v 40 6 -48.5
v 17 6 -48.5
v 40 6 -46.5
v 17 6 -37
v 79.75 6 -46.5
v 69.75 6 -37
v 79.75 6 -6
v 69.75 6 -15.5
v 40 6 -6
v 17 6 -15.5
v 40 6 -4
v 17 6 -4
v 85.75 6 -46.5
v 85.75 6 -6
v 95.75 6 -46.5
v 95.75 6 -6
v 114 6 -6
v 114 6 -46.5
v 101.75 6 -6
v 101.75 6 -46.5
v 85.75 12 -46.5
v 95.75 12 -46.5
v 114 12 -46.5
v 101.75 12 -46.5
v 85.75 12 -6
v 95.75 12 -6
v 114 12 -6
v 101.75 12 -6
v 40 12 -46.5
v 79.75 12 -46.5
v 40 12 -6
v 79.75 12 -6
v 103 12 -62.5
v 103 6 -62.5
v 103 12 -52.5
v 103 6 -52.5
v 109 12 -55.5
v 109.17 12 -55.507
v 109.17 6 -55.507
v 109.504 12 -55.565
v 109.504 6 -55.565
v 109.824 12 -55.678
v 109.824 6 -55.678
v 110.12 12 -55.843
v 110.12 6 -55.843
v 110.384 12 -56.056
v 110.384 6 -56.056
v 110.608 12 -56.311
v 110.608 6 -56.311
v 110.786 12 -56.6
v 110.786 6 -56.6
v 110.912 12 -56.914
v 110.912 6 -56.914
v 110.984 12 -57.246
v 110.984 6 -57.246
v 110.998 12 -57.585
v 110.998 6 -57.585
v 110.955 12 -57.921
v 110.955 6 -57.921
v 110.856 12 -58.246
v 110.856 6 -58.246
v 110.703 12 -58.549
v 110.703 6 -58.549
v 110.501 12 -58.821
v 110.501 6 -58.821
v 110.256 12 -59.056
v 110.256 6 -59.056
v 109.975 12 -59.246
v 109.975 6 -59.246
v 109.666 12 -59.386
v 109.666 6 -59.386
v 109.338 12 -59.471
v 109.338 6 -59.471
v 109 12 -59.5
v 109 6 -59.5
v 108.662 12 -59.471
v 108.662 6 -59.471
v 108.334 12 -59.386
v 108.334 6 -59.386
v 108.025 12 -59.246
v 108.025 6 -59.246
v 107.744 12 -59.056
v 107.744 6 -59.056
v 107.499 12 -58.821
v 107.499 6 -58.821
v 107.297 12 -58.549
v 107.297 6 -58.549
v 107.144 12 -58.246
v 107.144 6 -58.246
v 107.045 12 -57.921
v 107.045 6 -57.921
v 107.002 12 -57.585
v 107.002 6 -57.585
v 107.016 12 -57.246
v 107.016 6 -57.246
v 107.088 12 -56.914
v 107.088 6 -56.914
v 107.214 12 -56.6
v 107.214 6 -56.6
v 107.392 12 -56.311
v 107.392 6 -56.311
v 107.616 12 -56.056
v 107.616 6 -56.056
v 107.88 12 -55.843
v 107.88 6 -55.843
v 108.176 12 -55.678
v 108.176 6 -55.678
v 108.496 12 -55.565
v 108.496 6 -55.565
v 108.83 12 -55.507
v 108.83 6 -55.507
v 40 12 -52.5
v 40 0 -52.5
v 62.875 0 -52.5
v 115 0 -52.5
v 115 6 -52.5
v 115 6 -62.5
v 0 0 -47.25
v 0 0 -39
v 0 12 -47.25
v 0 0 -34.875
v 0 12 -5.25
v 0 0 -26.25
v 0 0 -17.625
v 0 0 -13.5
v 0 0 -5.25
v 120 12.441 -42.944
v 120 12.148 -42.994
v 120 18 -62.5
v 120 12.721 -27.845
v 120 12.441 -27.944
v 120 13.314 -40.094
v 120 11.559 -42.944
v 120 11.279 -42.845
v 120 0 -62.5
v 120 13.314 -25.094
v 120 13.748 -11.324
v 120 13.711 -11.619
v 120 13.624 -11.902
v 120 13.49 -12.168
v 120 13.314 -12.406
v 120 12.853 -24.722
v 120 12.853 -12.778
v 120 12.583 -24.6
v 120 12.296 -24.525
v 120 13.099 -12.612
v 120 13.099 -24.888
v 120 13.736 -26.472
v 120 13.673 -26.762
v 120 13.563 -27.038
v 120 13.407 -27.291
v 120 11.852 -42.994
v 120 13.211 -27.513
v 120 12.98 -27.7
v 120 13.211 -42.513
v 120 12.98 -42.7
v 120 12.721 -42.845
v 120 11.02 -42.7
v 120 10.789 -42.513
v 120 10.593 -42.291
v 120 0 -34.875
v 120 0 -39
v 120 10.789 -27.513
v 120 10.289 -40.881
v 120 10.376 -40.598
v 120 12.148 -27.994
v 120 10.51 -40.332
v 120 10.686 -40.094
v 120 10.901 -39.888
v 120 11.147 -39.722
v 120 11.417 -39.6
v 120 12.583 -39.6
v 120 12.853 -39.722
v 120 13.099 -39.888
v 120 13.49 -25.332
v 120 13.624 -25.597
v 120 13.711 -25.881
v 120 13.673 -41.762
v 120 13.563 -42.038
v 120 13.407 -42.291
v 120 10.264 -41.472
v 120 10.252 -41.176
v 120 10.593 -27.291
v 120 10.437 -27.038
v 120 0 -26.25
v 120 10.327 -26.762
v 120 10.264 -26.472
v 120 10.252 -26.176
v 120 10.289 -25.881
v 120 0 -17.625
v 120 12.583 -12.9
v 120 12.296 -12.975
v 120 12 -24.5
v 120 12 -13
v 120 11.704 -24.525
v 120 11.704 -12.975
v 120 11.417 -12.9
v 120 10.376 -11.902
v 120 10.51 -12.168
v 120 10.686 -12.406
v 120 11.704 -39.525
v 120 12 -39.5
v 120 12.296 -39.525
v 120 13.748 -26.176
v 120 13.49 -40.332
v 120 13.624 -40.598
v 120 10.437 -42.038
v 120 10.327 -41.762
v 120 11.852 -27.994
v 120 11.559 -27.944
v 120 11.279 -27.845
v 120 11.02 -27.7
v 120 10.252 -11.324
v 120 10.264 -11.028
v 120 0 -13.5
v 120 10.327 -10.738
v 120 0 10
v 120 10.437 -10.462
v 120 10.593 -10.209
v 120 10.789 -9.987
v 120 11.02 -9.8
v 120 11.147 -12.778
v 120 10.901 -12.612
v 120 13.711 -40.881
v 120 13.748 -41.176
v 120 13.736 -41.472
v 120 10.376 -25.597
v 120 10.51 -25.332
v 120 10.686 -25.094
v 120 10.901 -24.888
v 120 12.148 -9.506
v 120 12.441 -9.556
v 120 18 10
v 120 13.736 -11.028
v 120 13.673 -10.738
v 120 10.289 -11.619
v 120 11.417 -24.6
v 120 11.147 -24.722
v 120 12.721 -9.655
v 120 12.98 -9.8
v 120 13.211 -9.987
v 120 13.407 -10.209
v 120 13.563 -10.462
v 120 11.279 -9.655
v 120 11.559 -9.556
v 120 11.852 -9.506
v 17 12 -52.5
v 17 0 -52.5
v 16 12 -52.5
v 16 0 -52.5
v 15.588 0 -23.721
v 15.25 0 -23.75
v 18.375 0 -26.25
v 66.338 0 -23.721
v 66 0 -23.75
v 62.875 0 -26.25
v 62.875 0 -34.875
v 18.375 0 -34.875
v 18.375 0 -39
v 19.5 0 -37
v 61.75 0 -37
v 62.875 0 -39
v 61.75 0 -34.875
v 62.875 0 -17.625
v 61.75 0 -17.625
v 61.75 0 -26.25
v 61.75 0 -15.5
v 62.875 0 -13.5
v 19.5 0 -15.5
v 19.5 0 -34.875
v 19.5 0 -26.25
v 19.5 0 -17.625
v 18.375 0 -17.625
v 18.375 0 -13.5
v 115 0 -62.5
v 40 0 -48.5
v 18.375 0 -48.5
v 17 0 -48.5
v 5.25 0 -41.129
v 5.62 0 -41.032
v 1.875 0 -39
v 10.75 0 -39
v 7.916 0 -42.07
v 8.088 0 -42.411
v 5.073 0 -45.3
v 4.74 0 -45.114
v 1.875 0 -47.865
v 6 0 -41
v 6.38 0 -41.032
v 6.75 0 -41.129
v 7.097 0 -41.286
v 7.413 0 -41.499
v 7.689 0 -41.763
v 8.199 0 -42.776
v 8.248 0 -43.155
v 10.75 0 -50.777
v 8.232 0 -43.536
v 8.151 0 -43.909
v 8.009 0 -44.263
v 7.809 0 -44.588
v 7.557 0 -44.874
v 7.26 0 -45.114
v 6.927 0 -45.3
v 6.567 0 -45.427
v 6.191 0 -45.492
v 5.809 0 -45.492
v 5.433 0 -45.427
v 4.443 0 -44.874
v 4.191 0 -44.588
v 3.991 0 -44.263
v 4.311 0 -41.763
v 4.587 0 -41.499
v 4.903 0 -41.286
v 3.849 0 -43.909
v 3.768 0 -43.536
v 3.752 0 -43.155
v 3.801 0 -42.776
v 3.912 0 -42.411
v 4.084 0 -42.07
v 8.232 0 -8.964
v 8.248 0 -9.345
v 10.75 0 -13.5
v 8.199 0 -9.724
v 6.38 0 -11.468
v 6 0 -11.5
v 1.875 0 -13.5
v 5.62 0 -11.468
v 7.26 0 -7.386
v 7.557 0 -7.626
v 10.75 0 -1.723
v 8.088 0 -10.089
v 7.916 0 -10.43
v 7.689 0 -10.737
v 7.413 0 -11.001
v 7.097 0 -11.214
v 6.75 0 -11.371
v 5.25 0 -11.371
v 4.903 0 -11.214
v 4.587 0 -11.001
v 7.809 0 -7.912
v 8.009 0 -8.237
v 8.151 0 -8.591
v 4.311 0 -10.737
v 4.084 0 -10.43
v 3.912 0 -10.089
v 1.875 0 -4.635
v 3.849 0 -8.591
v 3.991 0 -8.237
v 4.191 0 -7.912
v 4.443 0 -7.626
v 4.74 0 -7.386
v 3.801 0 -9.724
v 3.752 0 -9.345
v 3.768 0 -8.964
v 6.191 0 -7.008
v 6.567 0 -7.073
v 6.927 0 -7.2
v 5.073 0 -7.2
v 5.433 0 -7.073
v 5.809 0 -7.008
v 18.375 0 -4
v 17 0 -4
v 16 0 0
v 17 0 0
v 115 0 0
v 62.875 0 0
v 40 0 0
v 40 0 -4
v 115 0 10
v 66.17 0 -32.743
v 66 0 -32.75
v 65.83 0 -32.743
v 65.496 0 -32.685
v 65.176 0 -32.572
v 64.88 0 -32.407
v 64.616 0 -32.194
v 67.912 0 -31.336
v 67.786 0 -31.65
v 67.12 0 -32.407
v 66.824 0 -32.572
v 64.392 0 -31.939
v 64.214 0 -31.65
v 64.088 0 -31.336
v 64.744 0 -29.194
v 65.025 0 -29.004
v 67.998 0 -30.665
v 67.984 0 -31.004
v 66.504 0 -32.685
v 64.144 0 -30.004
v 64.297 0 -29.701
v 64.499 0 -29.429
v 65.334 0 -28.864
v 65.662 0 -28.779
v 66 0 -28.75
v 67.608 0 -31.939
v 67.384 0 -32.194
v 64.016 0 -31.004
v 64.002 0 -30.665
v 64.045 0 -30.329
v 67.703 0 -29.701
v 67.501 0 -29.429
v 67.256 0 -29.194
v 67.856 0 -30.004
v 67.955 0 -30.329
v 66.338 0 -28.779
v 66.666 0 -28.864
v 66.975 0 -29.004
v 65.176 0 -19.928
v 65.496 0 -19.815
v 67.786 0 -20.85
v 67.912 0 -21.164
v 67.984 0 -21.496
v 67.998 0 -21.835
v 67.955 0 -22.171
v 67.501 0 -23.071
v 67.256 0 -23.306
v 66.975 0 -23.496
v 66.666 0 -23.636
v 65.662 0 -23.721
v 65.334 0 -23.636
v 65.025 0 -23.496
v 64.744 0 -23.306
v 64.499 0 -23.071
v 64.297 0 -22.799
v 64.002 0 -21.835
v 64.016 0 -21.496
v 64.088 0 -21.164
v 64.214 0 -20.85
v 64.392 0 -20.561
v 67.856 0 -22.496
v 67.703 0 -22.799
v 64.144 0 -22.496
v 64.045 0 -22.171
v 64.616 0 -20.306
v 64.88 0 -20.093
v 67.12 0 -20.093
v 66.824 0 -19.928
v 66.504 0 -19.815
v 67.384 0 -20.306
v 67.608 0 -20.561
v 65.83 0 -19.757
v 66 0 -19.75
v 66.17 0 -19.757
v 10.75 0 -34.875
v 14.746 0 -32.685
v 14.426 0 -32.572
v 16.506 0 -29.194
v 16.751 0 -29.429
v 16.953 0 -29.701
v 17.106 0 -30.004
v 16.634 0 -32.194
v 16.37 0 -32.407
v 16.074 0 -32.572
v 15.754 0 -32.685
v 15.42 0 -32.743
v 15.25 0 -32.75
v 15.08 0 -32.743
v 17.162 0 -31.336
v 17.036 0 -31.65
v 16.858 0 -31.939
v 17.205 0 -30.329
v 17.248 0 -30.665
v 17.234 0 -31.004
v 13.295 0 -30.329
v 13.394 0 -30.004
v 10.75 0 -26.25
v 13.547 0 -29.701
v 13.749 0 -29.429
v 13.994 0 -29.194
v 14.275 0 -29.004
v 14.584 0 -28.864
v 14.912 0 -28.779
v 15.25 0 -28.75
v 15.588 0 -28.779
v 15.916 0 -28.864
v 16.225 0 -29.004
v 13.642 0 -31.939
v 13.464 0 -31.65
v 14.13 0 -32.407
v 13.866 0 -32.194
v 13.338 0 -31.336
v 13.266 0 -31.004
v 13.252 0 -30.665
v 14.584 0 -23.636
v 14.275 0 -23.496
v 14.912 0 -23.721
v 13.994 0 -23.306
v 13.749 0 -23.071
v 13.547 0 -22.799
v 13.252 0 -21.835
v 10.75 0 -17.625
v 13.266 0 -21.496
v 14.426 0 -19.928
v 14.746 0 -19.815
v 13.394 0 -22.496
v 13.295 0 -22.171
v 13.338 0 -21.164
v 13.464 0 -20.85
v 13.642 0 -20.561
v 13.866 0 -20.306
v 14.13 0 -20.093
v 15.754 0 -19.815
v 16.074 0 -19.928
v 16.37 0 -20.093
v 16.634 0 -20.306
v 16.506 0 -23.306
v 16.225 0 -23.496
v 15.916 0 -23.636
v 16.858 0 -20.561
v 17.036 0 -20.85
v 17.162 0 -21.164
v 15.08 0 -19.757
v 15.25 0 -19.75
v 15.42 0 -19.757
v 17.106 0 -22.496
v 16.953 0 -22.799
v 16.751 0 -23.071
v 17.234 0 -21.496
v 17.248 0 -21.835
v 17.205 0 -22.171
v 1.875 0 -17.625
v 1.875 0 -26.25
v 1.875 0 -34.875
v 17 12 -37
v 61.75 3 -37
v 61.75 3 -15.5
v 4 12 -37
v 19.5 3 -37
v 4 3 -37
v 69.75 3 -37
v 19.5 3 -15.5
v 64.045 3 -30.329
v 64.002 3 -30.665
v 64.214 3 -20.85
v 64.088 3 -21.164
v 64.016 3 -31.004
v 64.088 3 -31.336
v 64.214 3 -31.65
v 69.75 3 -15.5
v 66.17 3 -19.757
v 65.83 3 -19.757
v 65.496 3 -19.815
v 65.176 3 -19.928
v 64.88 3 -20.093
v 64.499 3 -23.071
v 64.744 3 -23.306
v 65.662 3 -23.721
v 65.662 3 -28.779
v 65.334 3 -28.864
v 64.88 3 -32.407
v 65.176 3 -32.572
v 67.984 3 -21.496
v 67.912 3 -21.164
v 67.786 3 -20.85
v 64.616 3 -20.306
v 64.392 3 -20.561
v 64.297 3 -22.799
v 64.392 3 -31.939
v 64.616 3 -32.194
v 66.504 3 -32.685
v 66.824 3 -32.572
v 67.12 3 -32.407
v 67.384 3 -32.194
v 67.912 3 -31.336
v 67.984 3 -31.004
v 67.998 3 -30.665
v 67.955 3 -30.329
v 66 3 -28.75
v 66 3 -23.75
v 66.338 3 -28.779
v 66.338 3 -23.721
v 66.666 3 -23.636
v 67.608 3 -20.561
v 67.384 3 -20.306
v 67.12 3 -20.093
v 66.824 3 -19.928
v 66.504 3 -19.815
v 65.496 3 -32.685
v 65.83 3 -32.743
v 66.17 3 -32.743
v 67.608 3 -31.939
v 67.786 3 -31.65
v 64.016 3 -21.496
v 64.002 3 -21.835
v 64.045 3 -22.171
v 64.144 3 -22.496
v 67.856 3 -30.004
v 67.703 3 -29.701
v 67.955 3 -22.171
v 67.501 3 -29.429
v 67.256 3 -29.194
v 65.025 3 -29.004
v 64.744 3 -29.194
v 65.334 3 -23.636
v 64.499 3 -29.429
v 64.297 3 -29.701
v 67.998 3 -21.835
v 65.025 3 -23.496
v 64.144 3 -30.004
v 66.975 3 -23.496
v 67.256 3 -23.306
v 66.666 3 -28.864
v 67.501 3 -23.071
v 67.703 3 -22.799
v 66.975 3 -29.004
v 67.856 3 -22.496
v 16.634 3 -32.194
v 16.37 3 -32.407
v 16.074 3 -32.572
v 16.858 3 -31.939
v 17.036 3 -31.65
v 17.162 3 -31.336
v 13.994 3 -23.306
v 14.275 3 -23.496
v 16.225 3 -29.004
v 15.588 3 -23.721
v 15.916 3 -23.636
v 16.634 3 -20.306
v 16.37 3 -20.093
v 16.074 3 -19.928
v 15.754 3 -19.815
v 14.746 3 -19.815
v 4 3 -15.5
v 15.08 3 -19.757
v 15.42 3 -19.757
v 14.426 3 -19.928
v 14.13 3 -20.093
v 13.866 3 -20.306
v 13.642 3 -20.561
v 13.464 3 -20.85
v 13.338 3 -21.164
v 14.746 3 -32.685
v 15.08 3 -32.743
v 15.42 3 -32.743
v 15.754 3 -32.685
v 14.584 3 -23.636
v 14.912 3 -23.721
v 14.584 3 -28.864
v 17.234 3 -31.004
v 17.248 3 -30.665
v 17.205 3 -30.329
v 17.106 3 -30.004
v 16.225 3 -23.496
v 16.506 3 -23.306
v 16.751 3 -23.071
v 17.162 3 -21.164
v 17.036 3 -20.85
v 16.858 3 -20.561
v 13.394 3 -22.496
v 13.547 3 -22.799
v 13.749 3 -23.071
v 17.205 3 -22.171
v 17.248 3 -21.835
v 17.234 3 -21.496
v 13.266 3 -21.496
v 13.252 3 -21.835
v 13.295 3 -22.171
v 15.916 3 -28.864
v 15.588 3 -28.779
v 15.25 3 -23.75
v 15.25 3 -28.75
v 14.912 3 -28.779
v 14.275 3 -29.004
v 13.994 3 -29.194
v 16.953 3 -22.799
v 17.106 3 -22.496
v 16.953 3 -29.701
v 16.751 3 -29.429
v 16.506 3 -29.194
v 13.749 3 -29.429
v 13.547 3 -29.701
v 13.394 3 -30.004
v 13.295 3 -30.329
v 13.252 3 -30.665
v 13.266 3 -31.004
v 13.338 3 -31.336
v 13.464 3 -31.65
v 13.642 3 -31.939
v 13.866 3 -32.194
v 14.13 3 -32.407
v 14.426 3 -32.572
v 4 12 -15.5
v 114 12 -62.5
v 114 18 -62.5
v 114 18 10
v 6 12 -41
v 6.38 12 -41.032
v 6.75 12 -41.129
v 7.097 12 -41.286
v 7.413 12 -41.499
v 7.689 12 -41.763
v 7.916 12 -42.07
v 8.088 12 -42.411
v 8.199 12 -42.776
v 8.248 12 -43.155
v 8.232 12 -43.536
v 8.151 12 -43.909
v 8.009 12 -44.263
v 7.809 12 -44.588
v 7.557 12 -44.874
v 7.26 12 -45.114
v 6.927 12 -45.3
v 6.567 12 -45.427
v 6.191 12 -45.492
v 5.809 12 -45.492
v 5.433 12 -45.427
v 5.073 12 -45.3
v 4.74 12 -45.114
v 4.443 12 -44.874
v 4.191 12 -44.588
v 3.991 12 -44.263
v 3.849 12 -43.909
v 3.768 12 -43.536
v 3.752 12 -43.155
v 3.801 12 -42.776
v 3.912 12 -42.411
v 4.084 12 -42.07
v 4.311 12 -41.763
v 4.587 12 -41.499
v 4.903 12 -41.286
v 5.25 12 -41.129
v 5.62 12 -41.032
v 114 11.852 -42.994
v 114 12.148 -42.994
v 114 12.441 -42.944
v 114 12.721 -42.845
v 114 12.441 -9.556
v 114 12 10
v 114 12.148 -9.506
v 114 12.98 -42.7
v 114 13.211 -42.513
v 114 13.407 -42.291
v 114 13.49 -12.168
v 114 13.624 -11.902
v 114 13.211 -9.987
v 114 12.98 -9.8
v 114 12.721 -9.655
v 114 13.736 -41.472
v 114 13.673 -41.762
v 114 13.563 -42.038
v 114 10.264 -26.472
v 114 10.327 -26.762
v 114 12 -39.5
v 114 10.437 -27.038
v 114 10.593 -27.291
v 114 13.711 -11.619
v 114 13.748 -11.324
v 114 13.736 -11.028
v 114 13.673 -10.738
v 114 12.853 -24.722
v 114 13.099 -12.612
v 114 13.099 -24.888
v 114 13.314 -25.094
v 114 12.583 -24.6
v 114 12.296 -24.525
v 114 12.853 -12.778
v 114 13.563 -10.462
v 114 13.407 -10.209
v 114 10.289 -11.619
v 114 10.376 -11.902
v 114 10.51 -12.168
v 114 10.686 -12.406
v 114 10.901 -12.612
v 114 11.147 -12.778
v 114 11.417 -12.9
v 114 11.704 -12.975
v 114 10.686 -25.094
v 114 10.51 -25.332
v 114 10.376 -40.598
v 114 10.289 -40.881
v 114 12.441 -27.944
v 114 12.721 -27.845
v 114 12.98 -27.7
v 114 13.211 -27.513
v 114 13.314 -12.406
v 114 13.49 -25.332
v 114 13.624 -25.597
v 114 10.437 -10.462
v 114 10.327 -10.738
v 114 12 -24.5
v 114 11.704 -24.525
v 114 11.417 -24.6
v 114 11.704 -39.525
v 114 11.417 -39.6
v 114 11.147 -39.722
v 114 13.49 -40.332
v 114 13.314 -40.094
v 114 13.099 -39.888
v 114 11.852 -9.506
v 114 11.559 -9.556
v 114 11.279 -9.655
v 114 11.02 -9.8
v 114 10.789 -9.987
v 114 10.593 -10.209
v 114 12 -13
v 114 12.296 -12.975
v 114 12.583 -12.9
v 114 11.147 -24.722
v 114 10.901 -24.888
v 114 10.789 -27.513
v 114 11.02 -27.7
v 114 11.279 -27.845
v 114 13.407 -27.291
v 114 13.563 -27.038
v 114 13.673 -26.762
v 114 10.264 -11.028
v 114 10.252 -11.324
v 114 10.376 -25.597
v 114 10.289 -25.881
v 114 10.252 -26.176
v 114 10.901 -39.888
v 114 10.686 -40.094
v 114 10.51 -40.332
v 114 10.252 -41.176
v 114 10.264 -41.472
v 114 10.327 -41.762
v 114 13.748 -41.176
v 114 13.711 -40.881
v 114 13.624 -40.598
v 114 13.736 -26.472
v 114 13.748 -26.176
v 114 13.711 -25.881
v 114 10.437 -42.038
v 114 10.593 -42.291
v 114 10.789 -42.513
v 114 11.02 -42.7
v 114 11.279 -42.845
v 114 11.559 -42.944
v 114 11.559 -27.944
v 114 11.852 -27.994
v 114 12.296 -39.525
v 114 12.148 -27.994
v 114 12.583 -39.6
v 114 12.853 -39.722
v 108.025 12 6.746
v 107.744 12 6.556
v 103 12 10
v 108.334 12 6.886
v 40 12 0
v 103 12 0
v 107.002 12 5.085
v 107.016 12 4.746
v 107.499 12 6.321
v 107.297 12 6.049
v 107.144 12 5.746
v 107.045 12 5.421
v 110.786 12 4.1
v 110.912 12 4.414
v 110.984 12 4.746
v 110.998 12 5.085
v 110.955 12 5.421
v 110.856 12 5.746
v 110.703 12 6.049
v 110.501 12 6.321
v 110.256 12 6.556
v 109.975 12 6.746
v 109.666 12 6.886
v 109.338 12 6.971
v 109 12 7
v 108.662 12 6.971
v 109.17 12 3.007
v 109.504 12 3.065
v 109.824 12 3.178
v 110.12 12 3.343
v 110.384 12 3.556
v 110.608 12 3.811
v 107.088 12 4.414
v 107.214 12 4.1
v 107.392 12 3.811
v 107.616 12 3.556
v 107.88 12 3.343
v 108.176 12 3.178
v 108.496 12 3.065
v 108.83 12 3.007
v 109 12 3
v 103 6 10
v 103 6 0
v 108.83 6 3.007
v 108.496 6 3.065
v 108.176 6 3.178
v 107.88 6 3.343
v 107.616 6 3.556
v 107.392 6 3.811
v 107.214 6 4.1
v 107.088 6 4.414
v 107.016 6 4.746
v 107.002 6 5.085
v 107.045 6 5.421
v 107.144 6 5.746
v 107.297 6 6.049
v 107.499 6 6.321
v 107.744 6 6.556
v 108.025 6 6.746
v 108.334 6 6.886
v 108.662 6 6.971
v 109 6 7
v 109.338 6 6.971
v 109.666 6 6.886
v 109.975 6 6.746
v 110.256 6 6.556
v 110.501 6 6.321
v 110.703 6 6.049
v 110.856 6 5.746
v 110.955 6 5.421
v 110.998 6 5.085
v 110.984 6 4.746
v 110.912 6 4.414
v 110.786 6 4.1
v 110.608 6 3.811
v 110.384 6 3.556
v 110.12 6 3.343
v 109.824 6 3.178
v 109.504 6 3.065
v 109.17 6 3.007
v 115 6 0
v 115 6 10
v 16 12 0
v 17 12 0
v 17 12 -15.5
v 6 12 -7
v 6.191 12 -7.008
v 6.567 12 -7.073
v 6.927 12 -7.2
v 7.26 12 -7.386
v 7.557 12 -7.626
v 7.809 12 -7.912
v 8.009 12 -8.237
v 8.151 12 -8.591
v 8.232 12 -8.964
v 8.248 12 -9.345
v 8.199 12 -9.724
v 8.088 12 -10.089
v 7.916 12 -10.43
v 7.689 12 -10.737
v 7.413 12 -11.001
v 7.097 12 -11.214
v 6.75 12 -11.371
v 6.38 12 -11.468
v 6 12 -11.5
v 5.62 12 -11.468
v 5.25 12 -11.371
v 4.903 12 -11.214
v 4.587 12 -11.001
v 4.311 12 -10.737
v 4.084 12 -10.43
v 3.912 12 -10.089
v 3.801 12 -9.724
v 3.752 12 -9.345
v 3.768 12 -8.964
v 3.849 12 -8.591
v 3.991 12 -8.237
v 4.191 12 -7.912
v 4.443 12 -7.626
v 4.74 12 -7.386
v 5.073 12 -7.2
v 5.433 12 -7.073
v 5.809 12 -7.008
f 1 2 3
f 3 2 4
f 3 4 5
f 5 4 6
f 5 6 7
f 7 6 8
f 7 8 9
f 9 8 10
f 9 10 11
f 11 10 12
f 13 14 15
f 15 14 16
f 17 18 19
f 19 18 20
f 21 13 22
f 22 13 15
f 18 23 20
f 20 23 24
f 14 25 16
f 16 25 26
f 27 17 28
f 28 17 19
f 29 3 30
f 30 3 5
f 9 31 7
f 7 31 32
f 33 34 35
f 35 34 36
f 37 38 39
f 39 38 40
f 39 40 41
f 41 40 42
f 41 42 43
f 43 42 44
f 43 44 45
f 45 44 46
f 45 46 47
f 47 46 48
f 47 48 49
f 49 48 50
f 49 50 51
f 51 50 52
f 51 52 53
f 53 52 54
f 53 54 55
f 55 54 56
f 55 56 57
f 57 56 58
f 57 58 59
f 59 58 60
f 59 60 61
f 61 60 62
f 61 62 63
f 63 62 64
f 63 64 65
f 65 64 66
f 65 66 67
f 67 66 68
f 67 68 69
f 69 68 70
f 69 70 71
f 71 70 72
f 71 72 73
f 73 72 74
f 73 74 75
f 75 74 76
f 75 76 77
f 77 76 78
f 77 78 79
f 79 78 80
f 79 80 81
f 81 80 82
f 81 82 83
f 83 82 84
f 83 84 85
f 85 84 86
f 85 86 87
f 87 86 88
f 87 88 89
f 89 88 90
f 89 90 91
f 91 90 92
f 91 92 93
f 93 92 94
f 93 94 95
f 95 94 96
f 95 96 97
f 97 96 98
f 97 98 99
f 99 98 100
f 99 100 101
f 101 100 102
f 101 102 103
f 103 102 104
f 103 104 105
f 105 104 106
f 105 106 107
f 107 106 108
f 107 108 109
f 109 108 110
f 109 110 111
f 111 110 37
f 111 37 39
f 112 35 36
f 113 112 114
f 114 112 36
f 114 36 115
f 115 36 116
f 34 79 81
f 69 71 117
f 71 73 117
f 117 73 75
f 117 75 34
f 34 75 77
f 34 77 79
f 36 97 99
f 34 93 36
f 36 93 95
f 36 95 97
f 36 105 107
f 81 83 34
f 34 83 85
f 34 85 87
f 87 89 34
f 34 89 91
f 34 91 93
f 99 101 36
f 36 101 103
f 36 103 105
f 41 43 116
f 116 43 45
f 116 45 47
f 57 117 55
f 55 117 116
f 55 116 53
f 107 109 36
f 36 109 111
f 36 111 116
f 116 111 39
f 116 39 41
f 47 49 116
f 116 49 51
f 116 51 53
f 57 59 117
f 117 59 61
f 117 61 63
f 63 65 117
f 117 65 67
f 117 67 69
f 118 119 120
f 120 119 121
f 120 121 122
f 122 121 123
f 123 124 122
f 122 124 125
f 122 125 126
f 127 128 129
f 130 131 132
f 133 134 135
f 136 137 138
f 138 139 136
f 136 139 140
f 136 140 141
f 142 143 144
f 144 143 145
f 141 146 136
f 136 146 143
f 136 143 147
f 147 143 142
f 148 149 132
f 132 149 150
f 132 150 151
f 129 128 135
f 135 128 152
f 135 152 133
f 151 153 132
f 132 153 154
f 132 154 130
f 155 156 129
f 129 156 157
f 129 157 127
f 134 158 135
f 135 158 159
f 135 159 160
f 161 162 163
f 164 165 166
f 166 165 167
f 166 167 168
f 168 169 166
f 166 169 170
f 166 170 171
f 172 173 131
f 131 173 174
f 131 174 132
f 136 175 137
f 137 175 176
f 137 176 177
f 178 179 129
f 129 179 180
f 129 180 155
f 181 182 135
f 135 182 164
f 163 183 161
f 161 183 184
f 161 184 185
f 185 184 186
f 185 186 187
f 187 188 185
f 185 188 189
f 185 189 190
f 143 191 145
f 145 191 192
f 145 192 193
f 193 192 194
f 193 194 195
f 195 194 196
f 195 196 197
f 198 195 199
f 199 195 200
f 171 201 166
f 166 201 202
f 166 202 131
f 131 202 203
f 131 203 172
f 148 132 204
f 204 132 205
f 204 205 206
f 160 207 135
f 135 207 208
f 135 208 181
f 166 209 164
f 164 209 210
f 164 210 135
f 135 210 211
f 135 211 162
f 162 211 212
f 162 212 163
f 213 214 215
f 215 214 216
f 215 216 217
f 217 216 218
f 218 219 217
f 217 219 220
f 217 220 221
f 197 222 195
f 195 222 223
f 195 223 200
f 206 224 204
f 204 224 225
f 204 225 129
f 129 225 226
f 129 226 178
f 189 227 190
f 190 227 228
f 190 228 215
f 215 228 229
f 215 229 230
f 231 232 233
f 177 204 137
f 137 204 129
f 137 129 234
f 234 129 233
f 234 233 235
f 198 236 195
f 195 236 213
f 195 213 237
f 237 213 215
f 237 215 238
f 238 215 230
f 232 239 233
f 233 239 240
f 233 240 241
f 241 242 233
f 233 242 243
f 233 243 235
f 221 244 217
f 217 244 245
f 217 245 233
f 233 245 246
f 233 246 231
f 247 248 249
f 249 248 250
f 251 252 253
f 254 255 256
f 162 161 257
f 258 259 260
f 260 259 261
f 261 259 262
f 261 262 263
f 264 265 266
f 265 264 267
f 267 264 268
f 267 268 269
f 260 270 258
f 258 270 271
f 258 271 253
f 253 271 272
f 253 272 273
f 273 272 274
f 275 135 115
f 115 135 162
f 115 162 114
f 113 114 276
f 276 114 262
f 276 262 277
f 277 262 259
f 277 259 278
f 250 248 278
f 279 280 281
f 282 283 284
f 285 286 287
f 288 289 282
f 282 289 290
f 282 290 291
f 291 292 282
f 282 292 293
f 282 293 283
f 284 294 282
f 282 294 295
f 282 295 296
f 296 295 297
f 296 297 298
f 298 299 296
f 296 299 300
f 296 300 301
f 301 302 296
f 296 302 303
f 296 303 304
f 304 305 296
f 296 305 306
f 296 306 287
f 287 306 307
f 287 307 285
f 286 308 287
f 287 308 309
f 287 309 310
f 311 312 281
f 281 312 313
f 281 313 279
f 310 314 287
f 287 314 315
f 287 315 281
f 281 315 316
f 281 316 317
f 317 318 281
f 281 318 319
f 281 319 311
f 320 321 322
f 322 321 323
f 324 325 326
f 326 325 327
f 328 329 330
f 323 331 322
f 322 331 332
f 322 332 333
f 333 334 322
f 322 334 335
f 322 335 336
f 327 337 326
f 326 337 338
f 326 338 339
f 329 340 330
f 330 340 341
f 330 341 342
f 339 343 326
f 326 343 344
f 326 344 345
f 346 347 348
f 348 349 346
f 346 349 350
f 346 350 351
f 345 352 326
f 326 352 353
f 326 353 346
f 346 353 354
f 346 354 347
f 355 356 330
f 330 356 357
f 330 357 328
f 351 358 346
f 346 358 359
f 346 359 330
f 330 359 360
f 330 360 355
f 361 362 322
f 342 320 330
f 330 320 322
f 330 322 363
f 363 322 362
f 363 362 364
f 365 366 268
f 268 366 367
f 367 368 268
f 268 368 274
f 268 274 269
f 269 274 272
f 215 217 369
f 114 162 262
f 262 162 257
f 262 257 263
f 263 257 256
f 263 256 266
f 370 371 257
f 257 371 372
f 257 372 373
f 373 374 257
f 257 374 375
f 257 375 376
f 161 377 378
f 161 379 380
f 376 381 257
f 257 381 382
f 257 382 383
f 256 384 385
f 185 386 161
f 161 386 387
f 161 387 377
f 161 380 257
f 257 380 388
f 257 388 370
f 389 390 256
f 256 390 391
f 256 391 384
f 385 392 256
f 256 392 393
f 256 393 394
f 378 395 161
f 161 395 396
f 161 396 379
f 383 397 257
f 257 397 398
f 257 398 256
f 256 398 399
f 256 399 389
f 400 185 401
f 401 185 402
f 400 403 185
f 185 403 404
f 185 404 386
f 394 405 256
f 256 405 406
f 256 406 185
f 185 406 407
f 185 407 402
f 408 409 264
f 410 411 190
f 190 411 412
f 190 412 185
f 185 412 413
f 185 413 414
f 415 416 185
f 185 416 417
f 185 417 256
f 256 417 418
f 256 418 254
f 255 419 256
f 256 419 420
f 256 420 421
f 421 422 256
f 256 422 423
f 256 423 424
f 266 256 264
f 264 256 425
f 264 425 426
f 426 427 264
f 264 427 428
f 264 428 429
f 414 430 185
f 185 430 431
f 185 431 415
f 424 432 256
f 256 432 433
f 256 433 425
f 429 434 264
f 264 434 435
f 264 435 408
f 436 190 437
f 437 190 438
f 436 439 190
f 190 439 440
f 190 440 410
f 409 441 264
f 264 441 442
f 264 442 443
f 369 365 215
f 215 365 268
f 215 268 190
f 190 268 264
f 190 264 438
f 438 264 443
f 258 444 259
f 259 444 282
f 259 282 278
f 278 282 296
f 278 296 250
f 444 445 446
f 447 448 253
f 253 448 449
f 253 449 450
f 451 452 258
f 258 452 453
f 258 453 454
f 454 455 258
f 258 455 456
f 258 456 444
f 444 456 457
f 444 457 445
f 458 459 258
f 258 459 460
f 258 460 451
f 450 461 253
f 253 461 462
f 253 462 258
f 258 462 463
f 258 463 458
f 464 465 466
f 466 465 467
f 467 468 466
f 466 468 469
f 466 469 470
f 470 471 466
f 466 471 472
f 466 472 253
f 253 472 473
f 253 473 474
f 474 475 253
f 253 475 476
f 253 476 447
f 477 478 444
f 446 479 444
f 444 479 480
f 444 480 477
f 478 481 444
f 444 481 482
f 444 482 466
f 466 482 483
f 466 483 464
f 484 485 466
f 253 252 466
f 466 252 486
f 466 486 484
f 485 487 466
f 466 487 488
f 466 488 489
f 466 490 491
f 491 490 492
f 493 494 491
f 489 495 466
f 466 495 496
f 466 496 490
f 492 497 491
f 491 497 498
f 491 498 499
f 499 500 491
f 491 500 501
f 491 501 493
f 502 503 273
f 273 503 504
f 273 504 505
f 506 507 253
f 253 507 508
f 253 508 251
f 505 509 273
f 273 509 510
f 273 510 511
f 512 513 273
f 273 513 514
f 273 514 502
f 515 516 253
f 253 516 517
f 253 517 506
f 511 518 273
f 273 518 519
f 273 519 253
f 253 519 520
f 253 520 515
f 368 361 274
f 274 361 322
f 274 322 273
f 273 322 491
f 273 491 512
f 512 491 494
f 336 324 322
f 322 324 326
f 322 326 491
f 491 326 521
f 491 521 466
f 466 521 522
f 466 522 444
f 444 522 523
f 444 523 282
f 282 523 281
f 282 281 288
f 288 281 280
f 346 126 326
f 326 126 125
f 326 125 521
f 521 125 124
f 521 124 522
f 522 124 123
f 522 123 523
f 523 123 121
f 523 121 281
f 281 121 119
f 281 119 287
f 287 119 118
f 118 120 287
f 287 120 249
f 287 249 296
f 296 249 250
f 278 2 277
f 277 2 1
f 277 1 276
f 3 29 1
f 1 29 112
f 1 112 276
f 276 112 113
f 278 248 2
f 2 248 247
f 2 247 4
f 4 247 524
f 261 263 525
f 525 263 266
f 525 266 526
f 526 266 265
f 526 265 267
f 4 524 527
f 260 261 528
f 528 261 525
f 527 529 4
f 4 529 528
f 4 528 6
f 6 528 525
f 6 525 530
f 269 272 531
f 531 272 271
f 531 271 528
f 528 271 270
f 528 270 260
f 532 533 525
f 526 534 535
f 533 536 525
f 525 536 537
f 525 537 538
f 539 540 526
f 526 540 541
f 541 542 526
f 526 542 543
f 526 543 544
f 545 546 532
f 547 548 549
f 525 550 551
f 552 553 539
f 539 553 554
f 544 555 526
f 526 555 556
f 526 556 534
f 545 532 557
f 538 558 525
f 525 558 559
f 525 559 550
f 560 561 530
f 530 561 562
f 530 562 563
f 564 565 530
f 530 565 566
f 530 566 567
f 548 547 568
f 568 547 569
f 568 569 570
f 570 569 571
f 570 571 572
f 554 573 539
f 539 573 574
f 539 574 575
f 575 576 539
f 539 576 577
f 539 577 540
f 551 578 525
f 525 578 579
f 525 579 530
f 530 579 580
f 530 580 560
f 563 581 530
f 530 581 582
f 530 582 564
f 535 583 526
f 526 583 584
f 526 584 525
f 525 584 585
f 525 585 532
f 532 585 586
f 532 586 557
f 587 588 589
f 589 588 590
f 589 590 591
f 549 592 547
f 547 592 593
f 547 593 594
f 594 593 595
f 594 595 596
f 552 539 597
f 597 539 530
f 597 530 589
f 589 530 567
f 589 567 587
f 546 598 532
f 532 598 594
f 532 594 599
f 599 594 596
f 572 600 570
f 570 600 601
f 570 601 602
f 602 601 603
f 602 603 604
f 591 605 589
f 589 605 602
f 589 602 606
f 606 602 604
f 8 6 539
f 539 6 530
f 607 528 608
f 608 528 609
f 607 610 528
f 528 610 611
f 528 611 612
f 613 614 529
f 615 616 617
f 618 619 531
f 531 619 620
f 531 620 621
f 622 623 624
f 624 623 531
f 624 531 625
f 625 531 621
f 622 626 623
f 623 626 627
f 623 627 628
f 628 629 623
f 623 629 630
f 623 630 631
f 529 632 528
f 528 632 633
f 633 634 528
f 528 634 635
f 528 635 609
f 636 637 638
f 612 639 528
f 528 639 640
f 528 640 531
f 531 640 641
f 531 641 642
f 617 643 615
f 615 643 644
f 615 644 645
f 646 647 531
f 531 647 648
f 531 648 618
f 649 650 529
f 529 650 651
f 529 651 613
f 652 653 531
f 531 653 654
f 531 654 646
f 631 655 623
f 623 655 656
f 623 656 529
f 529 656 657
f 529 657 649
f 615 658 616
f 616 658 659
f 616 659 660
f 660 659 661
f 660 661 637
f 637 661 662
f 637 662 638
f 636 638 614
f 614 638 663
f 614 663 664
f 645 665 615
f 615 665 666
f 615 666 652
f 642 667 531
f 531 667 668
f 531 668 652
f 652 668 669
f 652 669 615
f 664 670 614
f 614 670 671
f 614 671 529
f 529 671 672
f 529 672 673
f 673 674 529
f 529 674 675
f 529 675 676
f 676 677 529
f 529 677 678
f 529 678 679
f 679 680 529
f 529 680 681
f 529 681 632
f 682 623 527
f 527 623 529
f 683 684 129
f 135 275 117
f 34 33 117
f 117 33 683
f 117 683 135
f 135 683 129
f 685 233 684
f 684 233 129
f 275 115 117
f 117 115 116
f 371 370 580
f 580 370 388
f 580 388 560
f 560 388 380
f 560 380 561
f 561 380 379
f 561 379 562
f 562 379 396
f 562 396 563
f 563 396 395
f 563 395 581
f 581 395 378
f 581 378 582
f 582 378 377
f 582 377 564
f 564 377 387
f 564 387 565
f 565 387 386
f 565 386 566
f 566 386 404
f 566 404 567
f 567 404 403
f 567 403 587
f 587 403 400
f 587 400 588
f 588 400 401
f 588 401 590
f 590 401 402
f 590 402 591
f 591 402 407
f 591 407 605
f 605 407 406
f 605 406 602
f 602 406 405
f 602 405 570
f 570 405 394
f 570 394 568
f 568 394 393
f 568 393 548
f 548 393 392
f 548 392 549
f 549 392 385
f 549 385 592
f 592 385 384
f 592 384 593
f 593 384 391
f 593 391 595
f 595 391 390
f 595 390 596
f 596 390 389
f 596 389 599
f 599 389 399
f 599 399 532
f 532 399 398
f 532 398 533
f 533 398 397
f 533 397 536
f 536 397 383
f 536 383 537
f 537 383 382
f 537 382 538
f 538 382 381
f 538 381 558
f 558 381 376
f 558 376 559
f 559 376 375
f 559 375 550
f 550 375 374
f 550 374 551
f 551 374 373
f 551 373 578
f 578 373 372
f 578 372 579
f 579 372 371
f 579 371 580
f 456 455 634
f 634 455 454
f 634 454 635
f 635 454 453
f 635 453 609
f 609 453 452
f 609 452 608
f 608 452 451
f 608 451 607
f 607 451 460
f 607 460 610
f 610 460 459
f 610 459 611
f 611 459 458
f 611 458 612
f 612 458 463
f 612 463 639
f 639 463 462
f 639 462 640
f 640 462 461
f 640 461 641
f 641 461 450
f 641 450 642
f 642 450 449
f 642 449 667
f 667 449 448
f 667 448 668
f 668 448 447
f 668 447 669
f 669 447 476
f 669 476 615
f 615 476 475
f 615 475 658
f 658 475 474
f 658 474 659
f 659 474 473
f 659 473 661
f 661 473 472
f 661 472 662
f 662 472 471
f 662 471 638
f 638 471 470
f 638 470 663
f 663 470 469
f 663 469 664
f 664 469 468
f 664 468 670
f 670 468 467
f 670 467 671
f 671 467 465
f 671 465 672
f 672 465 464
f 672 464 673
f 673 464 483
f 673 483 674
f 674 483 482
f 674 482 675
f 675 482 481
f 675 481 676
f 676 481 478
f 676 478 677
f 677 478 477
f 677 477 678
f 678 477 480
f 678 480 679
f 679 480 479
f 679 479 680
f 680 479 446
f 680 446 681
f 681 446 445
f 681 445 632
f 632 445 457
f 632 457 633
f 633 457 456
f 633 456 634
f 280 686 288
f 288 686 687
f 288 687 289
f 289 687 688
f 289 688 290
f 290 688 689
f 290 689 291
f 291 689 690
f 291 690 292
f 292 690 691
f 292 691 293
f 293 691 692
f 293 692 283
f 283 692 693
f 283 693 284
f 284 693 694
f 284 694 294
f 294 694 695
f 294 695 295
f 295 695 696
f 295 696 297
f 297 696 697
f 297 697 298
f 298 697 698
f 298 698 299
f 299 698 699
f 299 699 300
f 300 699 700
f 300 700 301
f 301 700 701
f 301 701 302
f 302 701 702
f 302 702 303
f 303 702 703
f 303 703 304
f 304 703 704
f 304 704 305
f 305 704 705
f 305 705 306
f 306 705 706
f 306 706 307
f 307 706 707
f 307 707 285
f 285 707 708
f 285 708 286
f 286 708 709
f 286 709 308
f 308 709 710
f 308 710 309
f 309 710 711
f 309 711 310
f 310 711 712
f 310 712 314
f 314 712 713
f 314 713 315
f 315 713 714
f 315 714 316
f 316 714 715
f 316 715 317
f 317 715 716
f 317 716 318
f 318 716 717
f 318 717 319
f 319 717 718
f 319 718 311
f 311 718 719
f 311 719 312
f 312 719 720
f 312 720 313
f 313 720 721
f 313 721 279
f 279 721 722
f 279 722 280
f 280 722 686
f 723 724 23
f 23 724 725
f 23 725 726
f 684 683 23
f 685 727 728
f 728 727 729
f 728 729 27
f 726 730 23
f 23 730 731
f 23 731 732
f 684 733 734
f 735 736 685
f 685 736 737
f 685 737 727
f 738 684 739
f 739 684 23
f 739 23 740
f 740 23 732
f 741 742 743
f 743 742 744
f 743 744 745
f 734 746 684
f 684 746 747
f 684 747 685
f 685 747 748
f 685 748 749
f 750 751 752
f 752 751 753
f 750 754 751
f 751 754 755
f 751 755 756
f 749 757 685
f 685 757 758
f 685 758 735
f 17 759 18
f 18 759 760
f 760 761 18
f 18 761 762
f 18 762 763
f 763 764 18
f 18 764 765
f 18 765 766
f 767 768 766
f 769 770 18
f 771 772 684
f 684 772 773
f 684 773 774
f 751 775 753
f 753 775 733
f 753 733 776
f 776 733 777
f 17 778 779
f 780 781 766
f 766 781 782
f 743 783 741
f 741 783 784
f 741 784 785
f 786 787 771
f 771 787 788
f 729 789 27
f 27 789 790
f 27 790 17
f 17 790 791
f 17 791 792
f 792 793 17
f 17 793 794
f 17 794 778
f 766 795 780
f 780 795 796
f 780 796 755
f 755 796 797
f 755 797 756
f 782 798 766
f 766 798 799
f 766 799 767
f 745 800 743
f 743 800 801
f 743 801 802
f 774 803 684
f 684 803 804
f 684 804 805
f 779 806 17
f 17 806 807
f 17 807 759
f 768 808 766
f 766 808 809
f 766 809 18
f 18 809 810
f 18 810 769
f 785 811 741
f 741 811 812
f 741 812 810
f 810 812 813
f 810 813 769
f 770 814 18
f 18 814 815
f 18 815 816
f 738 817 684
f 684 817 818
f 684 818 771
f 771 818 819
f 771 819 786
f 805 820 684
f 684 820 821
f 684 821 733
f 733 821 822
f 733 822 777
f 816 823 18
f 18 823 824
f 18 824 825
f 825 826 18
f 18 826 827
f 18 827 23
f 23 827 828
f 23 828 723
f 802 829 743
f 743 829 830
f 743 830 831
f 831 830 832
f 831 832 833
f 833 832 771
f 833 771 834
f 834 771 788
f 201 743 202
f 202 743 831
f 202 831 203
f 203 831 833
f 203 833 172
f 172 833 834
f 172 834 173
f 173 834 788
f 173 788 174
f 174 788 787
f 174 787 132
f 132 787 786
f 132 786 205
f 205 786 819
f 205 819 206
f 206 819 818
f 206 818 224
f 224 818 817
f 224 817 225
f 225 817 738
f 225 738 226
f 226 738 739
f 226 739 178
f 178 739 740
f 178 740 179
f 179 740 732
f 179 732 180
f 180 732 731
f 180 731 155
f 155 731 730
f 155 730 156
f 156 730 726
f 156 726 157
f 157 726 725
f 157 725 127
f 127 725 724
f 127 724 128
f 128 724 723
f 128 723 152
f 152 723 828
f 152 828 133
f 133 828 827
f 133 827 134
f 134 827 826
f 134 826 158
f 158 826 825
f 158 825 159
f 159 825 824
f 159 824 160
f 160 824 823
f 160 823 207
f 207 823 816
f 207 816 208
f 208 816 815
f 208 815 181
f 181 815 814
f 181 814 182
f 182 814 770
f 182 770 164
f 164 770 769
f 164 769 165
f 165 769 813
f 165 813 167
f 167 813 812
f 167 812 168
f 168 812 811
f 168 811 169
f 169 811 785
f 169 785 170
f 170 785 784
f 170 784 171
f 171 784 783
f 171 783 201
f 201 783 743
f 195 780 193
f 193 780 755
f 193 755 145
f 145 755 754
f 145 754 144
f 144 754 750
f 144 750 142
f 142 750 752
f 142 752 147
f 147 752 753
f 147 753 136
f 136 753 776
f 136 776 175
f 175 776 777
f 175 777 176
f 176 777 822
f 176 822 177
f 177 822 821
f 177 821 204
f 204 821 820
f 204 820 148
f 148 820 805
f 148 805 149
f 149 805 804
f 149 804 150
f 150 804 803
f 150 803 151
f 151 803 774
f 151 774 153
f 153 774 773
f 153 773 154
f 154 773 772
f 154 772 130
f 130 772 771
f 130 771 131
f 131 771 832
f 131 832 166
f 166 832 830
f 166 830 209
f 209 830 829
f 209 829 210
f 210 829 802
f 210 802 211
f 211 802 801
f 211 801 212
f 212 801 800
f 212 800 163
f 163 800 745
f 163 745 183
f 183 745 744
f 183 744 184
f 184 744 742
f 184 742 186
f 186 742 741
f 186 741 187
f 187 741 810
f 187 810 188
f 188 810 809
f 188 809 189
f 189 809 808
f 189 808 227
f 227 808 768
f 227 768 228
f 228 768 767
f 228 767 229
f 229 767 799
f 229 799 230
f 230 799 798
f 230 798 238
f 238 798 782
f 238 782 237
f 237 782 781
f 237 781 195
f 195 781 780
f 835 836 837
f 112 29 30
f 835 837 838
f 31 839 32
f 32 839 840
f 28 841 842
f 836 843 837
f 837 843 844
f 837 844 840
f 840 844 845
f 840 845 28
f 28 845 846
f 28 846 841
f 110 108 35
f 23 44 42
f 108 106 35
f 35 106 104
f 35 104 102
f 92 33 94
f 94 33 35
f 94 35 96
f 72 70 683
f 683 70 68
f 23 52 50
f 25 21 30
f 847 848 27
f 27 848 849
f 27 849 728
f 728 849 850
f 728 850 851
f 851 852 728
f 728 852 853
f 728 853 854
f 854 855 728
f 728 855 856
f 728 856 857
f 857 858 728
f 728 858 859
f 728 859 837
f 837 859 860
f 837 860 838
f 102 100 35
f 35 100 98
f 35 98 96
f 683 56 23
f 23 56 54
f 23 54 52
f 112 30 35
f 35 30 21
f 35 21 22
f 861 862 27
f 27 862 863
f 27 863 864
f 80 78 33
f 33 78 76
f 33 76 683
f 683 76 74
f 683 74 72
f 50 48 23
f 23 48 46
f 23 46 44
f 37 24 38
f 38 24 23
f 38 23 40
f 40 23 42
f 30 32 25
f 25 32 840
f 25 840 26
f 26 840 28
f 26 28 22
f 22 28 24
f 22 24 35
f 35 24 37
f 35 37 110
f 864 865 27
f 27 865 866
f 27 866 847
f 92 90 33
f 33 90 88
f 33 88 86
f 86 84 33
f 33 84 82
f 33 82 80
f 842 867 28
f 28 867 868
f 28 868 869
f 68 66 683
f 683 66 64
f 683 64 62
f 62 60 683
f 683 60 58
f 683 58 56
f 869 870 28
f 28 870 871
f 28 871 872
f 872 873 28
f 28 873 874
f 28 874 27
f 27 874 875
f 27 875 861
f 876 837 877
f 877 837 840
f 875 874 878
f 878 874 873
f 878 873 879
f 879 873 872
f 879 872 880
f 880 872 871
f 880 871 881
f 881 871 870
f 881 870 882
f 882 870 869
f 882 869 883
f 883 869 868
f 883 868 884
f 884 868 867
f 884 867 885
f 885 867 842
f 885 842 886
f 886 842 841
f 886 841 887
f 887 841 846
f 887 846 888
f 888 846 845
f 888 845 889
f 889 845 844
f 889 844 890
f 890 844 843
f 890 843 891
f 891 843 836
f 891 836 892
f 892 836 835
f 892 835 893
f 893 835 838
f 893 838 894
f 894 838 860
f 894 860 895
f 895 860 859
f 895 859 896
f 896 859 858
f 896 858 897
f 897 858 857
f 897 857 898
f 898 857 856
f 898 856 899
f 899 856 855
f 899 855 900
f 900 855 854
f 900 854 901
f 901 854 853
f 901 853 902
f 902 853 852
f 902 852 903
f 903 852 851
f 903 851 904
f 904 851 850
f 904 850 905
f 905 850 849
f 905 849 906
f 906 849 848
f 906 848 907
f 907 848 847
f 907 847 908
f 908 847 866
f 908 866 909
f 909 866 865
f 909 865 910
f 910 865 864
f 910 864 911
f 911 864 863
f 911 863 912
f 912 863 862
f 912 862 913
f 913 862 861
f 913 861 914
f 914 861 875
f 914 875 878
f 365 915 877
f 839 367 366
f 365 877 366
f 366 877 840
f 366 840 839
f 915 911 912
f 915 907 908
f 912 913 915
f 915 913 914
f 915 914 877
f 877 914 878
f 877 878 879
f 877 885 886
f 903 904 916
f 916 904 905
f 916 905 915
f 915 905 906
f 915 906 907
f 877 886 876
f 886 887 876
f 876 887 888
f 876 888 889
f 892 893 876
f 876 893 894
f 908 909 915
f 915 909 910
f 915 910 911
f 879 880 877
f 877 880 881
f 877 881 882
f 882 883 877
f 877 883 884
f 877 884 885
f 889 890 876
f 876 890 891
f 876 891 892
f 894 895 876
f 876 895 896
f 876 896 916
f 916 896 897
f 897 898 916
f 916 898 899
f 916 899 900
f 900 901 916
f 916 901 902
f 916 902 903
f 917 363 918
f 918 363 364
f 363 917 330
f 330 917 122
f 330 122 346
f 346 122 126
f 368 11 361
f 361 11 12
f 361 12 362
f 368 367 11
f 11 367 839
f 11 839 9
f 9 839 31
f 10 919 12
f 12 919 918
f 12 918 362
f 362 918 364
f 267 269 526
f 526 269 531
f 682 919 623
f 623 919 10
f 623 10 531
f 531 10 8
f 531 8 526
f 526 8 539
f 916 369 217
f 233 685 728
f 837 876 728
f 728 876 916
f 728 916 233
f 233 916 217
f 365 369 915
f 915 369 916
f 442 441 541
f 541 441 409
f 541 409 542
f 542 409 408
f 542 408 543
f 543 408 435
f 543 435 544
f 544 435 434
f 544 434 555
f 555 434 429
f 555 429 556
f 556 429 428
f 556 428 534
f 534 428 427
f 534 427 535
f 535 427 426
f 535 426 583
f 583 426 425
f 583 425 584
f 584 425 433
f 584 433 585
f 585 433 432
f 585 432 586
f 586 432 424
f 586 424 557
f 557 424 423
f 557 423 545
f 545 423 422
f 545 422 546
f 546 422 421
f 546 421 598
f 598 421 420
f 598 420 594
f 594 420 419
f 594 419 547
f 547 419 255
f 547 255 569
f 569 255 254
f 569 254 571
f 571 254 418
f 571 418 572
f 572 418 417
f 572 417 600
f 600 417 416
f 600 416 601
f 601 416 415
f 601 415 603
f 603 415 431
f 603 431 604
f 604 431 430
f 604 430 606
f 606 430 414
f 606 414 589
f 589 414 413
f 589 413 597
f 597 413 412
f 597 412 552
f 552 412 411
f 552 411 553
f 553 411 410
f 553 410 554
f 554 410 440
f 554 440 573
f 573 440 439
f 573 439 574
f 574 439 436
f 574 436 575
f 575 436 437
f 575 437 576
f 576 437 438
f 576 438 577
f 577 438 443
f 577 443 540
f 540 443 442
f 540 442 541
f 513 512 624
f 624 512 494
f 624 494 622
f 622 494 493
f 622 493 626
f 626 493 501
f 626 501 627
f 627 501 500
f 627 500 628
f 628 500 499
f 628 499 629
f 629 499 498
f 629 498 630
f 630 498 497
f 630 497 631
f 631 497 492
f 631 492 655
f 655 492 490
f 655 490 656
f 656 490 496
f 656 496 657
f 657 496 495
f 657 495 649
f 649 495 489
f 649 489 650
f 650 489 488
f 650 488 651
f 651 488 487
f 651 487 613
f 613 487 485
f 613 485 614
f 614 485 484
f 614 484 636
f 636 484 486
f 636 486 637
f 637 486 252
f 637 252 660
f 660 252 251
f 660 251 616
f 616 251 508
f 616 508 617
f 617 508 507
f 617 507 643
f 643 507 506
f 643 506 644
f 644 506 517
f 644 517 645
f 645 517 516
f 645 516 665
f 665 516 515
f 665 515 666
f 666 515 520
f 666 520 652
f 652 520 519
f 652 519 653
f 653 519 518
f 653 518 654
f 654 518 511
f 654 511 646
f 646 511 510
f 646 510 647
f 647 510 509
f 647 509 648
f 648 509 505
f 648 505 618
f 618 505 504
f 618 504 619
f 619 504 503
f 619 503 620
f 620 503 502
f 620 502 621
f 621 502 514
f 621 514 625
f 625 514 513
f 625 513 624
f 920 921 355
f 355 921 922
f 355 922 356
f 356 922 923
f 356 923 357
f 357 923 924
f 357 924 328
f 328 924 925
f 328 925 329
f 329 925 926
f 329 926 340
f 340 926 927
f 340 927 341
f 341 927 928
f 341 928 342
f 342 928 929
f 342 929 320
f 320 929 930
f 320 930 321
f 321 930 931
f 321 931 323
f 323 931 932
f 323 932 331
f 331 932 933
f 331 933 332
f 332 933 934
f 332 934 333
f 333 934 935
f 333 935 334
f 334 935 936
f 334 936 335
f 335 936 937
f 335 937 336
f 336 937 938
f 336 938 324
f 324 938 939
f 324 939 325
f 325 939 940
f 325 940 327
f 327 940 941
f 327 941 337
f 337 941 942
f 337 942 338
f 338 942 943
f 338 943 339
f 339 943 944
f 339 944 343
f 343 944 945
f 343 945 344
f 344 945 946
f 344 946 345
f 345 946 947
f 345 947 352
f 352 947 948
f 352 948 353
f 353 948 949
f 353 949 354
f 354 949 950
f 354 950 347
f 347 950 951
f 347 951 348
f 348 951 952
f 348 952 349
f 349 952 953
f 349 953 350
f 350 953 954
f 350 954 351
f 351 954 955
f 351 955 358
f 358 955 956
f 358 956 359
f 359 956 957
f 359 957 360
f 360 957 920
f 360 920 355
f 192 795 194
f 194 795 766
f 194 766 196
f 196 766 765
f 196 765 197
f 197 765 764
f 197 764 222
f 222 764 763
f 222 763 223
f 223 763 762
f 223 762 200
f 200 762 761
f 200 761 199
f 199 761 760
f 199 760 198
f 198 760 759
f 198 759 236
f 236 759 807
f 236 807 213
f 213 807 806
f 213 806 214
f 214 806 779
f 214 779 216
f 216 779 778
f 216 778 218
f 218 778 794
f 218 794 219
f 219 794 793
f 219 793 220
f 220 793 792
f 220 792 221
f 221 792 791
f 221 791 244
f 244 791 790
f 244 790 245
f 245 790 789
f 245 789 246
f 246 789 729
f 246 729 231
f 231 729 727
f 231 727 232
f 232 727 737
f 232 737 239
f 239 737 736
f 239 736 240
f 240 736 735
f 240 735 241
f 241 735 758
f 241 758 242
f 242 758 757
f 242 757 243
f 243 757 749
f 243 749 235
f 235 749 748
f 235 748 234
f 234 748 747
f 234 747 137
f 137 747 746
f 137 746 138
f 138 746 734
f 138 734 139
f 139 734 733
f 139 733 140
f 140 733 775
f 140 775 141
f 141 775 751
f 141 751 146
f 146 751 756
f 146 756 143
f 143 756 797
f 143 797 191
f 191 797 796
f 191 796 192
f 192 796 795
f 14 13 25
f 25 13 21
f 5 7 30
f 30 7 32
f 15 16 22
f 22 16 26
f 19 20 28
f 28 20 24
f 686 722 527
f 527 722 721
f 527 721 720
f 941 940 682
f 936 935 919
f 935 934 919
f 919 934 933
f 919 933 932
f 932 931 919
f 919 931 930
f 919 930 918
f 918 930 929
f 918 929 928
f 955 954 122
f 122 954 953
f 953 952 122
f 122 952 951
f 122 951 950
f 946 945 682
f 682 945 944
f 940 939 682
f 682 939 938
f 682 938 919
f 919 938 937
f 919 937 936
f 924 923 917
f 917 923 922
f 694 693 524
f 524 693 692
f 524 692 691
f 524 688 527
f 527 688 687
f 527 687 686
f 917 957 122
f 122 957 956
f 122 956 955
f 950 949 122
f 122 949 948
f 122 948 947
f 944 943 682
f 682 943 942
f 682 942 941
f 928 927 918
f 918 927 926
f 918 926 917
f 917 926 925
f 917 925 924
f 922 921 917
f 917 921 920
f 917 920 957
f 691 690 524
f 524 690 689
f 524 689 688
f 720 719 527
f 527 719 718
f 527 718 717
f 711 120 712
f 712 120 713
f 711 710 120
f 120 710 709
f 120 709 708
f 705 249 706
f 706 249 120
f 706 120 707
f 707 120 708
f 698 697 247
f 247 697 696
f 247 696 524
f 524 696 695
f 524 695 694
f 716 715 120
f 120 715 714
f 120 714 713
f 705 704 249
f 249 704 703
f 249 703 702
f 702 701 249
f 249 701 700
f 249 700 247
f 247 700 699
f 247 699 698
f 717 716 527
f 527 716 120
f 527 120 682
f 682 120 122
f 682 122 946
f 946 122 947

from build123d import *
from build123d.topology import SkipClean

# Parameters (mm, degrees)
SKETCH1_W           = 120
SKETCH1_H           = 52.5
BOSS_EXTRUDE1_DEPTH = 6
CUT_EXTRUDE1_DEPTH  = 6
SKETCH3_W           = 23
SKETCH3_H           = 4
CUT_EXTRUDE2_DEPTH  = 6
SKETCH4_W           = 42.25
SKETCH4_H           = 21.5
CUT_EXTRUDE3_DEPTH  = 6
SKETCH5_W           = 8
SKETCH5_H           = 21.5
SKETCH5_W_2         = 15.5
CUT_EXTRUDE4_DEPTH  = 3
SKETCH6_W           = 17
SKETCH6_H           = 72.5
BOSS_EXTRUDE2_DEPTH = 12
CUT_EXTRUDE6_DEPTH  = 136.831697332
SKETCH8_W           = 17
SKETCH8_H           = 36.25
CUT_EXTRUDE7_DEPTH  = 137.492673796
SKETCH9_W           = 65.75
SKETCH9_H           = 10.75
CUT_EXTRUDE8_DEPTH  = 6
SKETCH10_W          = 5
SKETCH10_H          = 6
BOSS_EXTRUDE3_DEPTH = 10
SKETCH14_R          = 2
CUT_EXTRUDE9_DEPTH  = 3
SKETCH15_R          = 2.25
CUT_EXTRUDE10_DEPTH = 136.831697332
SKETCH17_R          = 2
CUT_EXTRUDE11_DEPTH = 136.831697332
SKETCH18_W          = 11
SKETCH18_H          = 20.25
CUT_EXTRUDE12_DEPTH = 12
SKETCH19_R          = 1.75
CUT_EXTRUDE13_DEPTH = 132.248809518
SKETCH20_W          = 11
SKETCH20_H          = 16
CUT_EXTRUDE14_DEPTH = 6
SKETCH21_W          = 63
SKETCH21_H          = 6
BOSS_EXTRUDE6_DEPTH = 6
SKETCH22_W          = 6
SKETCH22_H          = 40.5
BOSS_EXTRUDE7_DEPTH = 6
BOSS_EXTRUDE8_START = 6
SKETCH24_R          = 2.25
BOSS_EXTRUDE8_DEPTH = 6


with BuildPart() as part:
    # Sketch1 → Boss-Extrude1 (new body)
    with BuildSketch(Plane(origin=(0, 0, 0), x_dir=(1, 0, 0), z_dir=(0, 1, 0))):
        with Locations((60, 26.25)):
            Rectangle(SKETCH1_W, SKETCH1_H)
    extrude(amount=BOSS_EXTRUDE1_DEPTH)

    # Sketch2 → Cut-Extrude1 (cut)
    with BuildSketch(Plane(origin=(0, 6, 0), x_dir=(1, 0, 0), z_dir=(0, 1, 0))):
        Polygon((0, 0), (16, 0), (0, 5.25), align=None)
        Polygon((0, 47.25), (0, 52.5), (16, 52.5), align=None)
    extrude(amount=-CUT_EXTRUDE1_DEPTH, mode=Mode.SUBTRACT)

    # Sketch3 → Cut-Extrude2 (cut)
    with BuildSketch(Plane(origin=(0, 6, 0), x_dir=(1, 0, 0), z_dir=(0, 1, 0))):
        with Locations((28.5, 2)):
            Rectangle(SKETCH3_W, SKETCH3_H)
        with Locations((28.5, 50.5)):
            Rectangle(SKETCH3_W, SKETCH3_H)
    extrude(amount=-CUT_EXTRUDE2_DEPTH, mode=Mode.SUBTRACT)

    # Sketch4 → Cut-Extrude3 (cut)
    with BuildSketch(Plane(origin=(0, 6, 0), x_dir=(1, 0, 0), z_dir=(0, 1, 0))):
        with Locations((40.625, 26.25)):
            Rectangle(SKETCH4_W, SKETCH4_H)
    extrude(amount=-CUT_EXTRUDE3_DEPTH, mode=Mode.SUBTRACT)

    # Sketch5 → Cut-Extrude4 (cut)
    with BuildSketch(Plane(origin=(0, 6, 0), x_dir=(1, 0, 0), z_dir=(0, 1, 0))):
        with Locations((65.75, 26.25)):
            Rectangle(SKETCH5_W, SKETCH5_H)
        with Locations((11.75, 26.25)):
            Rectangle(SKETCH5_W_2, SKETCH5_H)
    extrude(amount=-CUT_EXTRUDE4_DEPTH, mode=Mode.SUBTRACT)

    # Sketch6 → Boss-Extrude2 (add)
    with BuildSketch(Plane(origin=(0, 6, 0), x_dir=(1, 0, 0), z_dir=(0, 1, 0))):
        with Locations((111.5, 26.25)):
            Rectangle(SKETCH6_W, SKETCH6_H)
    extrude(amount=BOSS_EXTRUDE2_DEPTH)

    # Sketch7 → Cut-Extrude6 (cut, through all)
    with BuildSketch(Plane(origin=(0, 6, 0), x_dir=(1, 0, 0), z_dir=(0, 1, 0))):
        Polygon((103, 26.25), (69.75, 26.25), (69.75, 15.5), (4, 15.5), (4, 26.25), (0, 26.25), (0, 5.25), (16, 0), (17, 0), (17, 4), (40, 4), (40, 0), (103, 0), align=None)
    extrude(amount=-CUT_EXTRUDE6_DEPTH, mode=Mode.SUBTRACT)

    # Sketch8 → Cut-Extrude7 (cut, through all)
    with BuildSketch(Plane(origin=(0, 18, 0), x_dir=(1, 0, 0), z_dir=(0, 1, 0))):
        with Locations((111.5, 8.125)):
            Rectangle(SKETCH8_W, SKETCH8_H)
    extrude(amount=-CUT_EXTRUDE7_DEPTH, mode=Mode.SUBTRACT)

    # Sketch9 → Cut-Extrude8 (cut)
    with BuildSketch(Plane(origin=(0, 3, 0), x_dir=(1, 0, 0), z_dir=(0, 1, 0))):
        with Locations((36.875, 20.875)):
            Rectangle(SKETCH9_W, SKETCH9_H)
    extrude(amount=-CUT_EXTRUDE8_DEPTH, mode=Mode.SUBTRACT)

    # Sketch10 → Boss-Extrude3 (add)
    with BuildSketch(Plane(origin=(0, 0, -52.5), x_dir=(-1, 0, 0), z_dir=(0, 0, -1))):
        with Locations((-117.5, 3)):
            Rectangle(SKETCH10_W, SKETCH10_H)
    extrude(amount=BOSS_EXTRUDE3_DEPTH)

    # Sketch14 → Cut-Extrude9 (cut)
    with BuildSketch(Plane(origin=(0, 3, 0), x_dir=(1, 0, 0), z_dir=(0, 1, 0))):
        with Locations(Location((66, 30.75, 0), (0, 0, 270))):
            Circle(SKETCH14_R)
        with Locations(Location((15.25, 30.75, 0), (0, 0, 270))):
            Circle(SKETCH14_R)
    extrude(amount=-CUT_EXTRUDE9_DEPTH, mode=Mode.SUBTRACT)

    # Sketch15 → Cut-Extrude10 (cut, through all)
    with BuildSketch(Plane(origin=(0, 6, 0), x_dir=(1, 0, 0), z_dir=(0, 1, 0))):
        with Locations(Location((6, 43.25, 0), (0, 0, 270))):
            Circle(SKETCH15_R)
    extrude(amount=-CUT_EXTRUDE10_DEPTH, mode=Mode.SUBTRACT)

    # Sketch17 → Cut-Extrude11 (cut, through all)
    with BuildSketch(Plane.XZ.offset(-6)):
        with Locations(Location((109, -57.5, 0), (0, 0, 270))):
            Circle(SKETCH17_R)
    extrude(amount=-CUT_EXTRUDE11_DEPTH, mode=Mode.SUBTRACT)

    # Sketch18 → Cut-Extrude12 (cut)
    with BuildSketch(Plane(origin=(0, 18, 0), x_dir=(1, 0, 0), z_dir=(0, 1, 0))):
        with Locations((108.5, 36.375)):
            Rectangle(SKETCH18_W, SKETCH18_H)
    extrude(amount=-CUT_EXTRUDE12_DEPTH, mode=Mode.SUBTRACT)

    # Sketch19 → Cut-Extrude13 (cut, through all)
    with BuildSketch(Plane.ZY.offset(-114)):
        with Locations((-41.25, 12)):
            Circle(SKETCH19_R)
        with Locations((-26.25, 12)):
            Circle(SKETCH19_R)
    extrude(amount=-CUT_EXTRUDE13_DEPTH, mode=Mode.SUBTRACT)

    # Sketch20 → Cut-Extrude14 (cut)
    with BuildSketch(Plane(origin=(0, 18, 0), x_dir=(1, 0, 0), z_dir=(0, 1, 0))):
        with Locations((108.5, 54.5)):
            Rectangle(SKETCH20_W, SKETCH20_H)
    extrude(amount=-CUT_EXTRUDE14_DEPTH, mode=Mode.SUBTRACT)

    # Sketch21 → Boss-Extrude6 (add)
    with BuildSketch(Plane(origin=(0, 6, 0), x_dir=(1, 0, 0), z_dir=(0, 1, 0))):
        with Locations((71.5, 49.5)):
            Rectangle(SKETCH21_W, SKETCH21_H)
    extrude(amount=BOSS_EXTRUDE6_DEPTH)

    # Mirror1: part across plane


with BuildPart() as part_1:
    with SkipClean():  # the faces are left unmerged after this step: merging them gives an invalid solid
        add(part.part)
        add(part.part.mirror(Plane(origin=(103, -2.5e-05, -26.25), x_dir=(1, 0, 0), z_dir=(0, 0, -1))))

    # Sketch22 → Boss-Extrude7 (add)
    with SkipClean():  # the faces are left unmerged after this step: merging them gives an invalid solid
        with BuildSketch(Plane(origin=(0, 6, 0), x_dir=(1, 0, 0), z_dir=(0, 1, 0))):
            with Locations((82.75, 26.25)):
                Rectangle(SKETCH22_W, SKETCH22_H)
            with Locations((98.75, 26.25)):
                Rectangle(SKETCH22_W, SKETCH22_H)
        extrude(amount=BOSS_EXTRUDE7_DEPTH)

    # Sketch24 → Boss-Extrude8 (add)
    with BuildSketch(Plane(origin=(0, 6, 0), x_dir=(1, 0, 0), z_dir=(0, 1, 0)).offset(BOSS_EXTRUDE8_START)):
        Polygon((17, 15.5), (17, 0), (16, 0), (0, 5.25), (0, 47.25), (16, 52.5), (17, 52.5), (17, 37), (4, 37), (4, 15.5), align=None)
        with Locations(Location((6, 43.25, 0), (0, 0, 270))):
            Circle(SKETCH24_R, mode=Mode.SUBTRACT)
        with Locations(Location((6, 9.25, 0), (0, 0, 90))):
            Circle(SKETCH24_R, mode=Mode.SUBTRACT)
    extrude(amount=-BOSS_EXTRUDE8_DEPTH)


solid = part_1.part
